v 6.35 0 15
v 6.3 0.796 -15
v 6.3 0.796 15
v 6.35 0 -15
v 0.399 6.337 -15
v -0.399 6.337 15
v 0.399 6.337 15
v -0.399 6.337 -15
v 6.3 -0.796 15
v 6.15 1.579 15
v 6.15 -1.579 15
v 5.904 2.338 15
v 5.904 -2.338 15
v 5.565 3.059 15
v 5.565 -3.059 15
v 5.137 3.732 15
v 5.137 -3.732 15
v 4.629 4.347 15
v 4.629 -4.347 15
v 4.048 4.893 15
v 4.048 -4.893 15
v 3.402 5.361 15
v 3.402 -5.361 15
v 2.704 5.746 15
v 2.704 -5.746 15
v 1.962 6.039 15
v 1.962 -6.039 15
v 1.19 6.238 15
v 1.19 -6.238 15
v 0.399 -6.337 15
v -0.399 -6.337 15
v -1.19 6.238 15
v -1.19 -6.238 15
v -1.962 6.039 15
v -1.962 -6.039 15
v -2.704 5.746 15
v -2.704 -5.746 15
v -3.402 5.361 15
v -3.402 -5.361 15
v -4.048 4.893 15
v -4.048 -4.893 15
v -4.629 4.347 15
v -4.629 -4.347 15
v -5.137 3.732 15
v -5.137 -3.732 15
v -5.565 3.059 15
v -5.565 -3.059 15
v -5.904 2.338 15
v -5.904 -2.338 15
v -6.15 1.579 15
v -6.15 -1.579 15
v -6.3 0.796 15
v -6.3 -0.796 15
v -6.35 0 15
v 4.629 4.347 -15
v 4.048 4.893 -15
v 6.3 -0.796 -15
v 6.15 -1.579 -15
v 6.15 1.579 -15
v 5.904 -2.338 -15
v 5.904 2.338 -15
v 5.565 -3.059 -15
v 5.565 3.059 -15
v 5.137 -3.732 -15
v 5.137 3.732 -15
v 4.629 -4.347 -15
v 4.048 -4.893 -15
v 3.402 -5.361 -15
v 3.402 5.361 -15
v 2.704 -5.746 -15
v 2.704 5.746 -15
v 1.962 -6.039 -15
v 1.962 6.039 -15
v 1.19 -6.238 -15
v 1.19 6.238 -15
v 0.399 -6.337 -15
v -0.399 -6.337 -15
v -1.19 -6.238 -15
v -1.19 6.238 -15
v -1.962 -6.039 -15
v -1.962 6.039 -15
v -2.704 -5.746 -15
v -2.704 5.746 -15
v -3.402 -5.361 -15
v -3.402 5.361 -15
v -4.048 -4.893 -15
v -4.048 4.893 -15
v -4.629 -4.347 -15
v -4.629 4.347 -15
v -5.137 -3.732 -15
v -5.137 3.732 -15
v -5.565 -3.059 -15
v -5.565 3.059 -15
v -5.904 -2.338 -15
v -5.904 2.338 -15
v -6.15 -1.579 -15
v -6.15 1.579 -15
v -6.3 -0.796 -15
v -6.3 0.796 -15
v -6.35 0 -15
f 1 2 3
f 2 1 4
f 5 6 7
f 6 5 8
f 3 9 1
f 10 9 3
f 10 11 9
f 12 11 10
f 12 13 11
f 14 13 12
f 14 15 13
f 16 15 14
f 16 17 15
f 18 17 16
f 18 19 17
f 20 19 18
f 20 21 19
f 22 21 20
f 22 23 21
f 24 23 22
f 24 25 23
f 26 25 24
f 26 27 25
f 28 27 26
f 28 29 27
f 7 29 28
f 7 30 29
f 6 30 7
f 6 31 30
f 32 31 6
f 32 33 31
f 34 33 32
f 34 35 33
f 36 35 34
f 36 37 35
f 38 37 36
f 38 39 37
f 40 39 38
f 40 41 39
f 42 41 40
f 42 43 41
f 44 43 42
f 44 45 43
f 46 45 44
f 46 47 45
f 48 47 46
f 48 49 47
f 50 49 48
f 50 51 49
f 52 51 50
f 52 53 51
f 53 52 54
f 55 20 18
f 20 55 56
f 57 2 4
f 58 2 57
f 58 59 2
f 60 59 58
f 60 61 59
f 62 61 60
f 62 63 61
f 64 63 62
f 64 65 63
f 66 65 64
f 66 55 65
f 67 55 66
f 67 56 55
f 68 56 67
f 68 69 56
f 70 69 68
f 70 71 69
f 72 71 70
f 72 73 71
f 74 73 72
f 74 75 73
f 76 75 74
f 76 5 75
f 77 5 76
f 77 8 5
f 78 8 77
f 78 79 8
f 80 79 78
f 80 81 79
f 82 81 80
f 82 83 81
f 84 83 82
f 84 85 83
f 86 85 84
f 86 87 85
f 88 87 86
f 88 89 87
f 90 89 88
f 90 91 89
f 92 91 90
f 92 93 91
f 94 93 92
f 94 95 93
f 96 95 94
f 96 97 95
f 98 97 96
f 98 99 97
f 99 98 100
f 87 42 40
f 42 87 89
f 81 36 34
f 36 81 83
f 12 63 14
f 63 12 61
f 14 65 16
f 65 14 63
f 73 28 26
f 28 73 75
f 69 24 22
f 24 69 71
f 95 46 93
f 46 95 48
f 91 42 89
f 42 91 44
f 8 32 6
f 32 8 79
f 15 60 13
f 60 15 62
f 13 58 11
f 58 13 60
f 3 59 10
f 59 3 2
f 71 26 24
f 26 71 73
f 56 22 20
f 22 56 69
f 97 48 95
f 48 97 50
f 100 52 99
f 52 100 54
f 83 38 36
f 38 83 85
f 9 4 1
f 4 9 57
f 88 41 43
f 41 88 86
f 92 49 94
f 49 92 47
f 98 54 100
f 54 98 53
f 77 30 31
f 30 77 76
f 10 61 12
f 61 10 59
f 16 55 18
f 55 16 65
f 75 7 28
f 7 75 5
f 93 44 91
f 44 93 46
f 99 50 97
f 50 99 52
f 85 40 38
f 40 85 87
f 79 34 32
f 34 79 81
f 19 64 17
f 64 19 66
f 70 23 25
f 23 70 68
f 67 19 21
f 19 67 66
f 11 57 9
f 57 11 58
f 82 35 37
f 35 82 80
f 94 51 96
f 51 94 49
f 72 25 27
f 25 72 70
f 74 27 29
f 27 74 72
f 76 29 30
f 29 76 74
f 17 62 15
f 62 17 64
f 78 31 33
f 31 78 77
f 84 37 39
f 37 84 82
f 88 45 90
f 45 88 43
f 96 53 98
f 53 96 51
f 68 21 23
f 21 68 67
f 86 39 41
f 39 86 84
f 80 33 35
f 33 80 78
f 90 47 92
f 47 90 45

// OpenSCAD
$fn = 50;


difference() {
	union() {
		translate(v = [0, 0, -15.0000000000]) {
			cylinder(h = 30, r = 6.3500000000);
		}
	}
	union() {
		translate(v = [0, 0, -100.0000000000]) {
			cylinder(h = 200, r = 0);
		}
	}
}
